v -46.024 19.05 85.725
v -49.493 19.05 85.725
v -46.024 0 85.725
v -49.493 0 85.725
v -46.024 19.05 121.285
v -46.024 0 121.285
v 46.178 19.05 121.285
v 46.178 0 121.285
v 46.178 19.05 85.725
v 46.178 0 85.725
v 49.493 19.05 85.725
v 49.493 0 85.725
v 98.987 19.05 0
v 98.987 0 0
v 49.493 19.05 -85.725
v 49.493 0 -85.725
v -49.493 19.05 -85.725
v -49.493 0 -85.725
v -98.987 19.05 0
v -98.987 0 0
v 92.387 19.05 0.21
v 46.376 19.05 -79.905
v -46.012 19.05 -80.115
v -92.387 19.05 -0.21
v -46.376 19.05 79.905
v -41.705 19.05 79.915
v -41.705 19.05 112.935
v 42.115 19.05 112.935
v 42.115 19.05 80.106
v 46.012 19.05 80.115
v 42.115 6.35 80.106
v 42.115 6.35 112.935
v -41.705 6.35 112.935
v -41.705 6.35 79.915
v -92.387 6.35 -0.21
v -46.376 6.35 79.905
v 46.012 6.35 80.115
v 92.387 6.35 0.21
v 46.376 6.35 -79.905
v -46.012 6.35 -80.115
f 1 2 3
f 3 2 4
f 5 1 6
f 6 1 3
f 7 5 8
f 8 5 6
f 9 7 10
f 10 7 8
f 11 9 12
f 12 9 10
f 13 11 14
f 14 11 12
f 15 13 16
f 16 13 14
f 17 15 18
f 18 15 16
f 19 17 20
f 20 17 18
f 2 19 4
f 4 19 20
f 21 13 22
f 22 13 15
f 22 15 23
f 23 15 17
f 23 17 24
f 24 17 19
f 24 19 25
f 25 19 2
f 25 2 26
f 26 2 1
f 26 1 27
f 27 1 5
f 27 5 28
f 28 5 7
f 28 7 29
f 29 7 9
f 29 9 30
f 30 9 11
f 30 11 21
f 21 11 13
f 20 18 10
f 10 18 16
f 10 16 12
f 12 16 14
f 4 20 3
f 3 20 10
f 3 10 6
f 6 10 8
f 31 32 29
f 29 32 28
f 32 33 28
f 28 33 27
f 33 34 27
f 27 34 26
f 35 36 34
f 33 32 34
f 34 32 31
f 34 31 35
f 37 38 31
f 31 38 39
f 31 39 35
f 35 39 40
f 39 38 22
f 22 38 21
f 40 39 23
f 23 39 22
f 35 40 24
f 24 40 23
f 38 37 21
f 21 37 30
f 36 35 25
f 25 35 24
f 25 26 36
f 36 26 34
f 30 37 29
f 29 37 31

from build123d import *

# Parameters (mm, degrees)
SKETCH1_W           = 92.202
SKETCH1_H           = 35.56
BOSS_EXTRUDE3_DEPTH = 19.05
SKETCH4_W           = 83.82
SKETCH4_H           = 33.02
CUT_EXTRUDE1_DEPTH  = 12.7


with BuildPart() as part:
    # Sketch1 → Boss-Extrude3 (new body)
    with BuildSketch(Plane(origin=(0, 0, 0), x_dir=(1, 0, 0), z_dir=(0, 1, 0))):
        Polygon((-49.493351826, -85.725), (49.493351826, -85.725), (98.986703653, 0), (49.493351826, 85.725), (-49.493351826, 85.725), (-98.986703653, 0), align=None)
        with Locations((0.077086569, -103.505)):
            Rectangle(SKETCH1_W, SKETCH1_H)
    extrude(amount=BOSS_EXTRUDE3_DEPTH)

    # Sketch4 → Cut-Extrude1 (cut)
    with BuildSketch(Plane(origin=(0, 19.05, 0), x_dir=(1, 0, 0), z_dir=(0, 1, 0))):
        Polygon((46.011704472, -80.114854126), (92.387351129, -0.210122118), (46.375646657, 79.904732007), (-46.011704472, 80.114854126), (-92.387351129, 0.210122118), (-46.375646657, -79.904732007), align=None)
        with Locations((0.204587762, -96.425353803)):
            Rectangle(SKETCH4_W, SKETCH4_H)
    extrude(amount=-CUT_EXTRUDE1_DEPTH, mode=Mode.SUBTRACT)


solid = part.part
